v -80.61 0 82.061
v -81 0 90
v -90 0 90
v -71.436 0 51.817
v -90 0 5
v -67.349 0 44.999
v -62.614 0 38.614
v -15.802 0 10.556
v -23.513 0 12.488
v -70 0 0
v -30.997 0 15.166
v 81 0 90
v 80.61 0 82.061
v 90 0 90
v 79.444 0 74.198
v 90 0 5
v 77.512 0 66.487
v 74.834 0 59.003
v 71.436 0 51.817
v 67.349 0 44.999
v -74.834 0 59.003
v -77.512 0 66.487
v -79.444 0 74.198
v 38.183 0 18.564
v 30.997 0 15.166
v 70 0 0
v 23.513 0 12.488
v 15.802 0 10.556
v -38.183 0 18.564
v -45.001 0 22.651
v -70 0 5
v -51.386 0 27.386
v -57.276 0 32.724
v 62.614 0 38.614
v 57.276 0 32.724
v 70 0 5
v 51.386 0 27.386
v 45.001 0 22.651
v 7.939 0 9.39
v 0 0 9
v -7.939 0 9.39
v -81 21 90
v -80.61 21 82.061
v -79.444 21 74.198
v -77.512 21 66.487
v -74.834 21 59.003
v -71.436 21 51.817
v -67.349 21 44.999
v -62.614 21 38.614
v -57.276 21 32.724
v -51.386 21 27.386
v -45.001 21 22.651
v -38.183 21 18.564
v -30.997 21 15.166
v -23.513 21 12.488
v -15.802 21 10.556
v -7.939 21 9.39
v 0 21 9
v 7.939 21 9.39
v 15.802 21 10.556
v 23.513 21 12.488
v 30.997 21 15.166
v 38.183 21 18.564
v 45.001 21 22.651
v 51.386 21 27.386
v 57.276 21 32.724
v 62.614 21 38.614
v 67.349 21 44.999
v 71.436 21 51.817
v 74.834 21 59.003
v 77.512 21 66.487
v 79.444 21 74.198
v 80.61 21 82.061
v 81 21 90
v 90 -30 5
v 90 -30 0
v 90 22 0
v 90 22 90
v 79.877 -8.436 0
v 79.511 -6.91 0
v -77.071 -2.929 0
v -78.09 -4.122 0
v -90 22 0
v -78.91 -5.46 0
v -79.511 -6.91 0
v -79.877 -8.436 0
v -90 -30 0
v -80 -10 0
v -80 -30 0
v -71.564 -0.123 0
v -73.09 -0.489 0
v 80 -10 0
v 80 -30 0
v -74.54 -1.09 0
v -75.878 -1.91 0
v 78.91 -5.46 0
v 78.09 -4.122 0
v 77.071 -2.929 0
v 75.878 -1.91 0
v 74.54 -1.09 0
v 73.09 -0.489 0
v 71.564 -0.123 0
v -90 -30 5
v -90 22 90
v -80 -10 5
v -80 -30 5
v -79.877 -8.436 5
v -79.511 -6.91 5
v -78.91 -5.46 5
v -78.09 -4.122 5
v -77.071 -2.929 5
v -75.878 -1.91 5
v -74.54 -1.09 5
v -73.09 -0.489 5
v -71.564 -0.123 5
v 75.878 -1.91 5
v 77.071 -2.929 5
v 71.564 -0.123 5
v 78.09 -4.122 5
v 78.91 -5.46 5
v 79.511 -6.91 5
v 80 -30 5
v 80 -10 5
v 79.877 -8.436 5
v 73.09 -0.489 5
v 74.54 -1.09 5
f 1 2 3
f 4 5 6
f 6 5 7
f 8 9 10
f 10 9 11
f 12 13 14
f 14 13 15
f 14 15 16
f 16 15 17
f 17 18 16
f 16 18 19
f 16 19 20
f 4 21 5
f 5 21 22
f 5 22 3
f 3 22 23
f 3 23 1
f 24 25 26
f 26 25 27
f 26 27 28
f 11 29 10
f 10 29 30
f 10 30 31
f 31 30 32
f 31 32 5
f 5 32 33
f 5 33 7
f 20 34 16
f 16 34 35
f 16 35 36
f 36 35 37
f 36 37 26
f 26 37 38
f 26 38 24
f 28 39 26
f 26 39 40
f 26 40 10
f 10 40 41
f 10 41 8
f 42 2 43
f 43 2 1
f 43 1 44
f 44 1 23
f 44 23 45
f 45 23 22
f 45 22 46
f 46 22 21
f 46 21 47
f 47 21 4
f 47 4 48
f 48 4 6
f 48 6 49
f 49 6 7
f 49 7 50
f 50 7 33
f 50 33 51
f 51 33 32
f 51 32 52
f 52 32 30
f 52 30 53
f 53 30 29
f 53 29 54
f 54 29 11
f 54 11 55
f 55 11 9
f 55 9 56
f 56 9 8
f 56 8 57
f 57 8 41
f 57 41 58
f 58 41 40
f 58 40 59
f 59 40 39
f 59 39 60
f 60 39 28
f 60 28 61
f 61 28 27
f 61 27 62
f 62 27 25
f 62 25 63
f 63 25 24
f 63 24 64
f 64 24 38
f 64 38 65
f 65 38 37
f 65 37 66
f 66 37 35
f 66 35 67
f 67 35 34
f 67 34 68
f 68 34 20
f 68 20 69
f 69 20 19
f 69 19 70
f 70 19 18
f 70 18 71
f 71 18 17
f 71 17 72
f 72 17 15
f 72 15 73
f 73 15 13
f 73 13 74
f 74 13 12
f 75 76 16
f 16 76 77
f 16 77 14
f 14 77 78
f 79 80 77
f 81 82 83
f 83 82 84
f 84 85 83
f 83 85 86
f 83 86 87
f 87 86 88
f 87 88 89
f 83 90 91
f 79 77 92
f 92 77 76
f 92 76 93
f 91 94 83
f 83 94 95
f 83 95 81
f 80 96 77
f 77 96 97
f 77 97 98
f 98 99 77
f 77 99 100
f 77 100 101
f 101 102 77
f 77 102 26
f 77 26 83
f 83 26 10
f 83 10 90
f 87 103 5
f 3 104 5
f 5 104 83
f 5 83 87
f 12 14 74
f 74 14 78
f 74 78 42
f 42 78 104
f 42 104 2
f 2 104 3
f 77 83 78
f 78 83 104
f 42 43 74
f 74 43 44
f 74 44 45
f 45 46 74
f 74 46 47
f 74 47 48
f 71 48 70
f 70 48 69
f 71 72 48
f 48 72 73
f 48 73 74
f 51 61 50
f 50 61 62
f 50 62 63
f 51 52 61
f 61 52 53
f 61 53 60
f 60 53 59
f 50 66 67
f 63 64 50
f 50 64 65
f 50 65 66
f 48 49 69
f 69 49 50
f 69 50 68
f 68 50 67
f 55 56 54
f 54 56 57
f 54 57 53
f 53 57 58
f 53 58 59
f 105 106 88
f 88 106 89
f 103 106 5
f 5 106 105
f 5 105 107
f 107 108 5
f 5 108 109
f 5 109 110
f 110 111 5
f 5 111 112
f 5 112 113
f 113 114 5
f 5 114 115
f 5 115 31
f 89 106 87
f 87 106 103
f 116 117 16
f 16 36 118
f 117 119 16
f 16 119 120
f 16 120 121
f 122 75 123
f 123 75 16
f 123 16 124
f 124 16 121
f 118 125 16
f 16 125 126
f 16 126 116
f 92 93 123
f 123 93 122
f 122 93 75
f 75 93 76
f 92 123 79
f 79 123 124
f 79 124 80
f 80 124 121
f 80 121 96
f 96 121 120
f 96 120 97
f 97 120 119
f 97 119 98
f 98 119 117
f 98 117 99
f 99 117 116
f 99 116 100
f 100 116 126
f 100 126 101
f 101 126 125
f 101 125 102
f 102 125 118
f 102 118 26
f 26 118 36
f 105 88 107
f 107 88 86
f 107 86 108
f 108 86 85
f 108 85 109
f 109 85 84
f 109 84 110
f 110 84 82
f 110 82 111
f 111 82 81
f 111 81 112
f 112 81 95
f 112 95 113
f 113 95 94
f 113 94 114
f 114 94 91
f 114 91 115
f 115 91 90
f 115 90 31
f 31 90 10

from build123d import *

# Parameters (mm, degrees)
EXTRUDE_1_DEPTH = 22
SKETCH_2_W      = 180
SKETCH_2_H      = 90
EXTRUDE_2_DEPTH = 1
SKETCH_3_W      = 10
SKETCH_3_H      = 5
EXTRUDE_3_DEPTH = 30
FILLET_1_R      = 10


with BuildPart() as part:
    # Эскиз1 → Бобышка-Вытянуть1 (new body)
    with BuildSketch(Plane(origin=(0, 0, 0), x_dir=(-1, 0, 0), z_dir=(0, 1, 0))):
        with BuildLine():
            Line((-90, 0), (90, 0))
            Line((90, 0), (90, 90))
            Line((90, 90), (81, 90))
            ThreePointArc((81, 90), (0, 9), (-81, 90))
            Line((-81, 90), (-90, 90))
            Line((-90, 90), (-90, 0))
        make_face()
    extrude(amount=EXTRUDE_1_DEPTH)

    # Эскиз2 → Бобышка-Вытянуть2 (add)
    with BuildSketch(Plane(origin=(0, 22, 0), x_dir=(1, 0, 0), z_dir=(0, 1, 0))):
        with Locations((0, -45)):
            Rectangle(SKETCH_2_W, SKETCH_2_H)
    extrude(amount=-EXTRUDE_2_DEPTH)

    # Эскиз3 → Бобышка-Вытянуть3 (add)
    with BuildSketch(Plane.XZ):
        with Locations((-85, 2.5)):
            Rectangle(SKETCH_3_W, SKETCH_3_H)
        with Locations((85, 2.5)):
            Rectangle(SKETCH_3_W, SKETCH_3_H)
    extrude(amount=EXTRUDE_3_DEPTH)

    # Скругление1
    fillet_1_edges = [part.edges().sort_by_distance(p)[0] for p in [
        (-80, 0, 2.5),
        (80, 0, 2.5),
    ]]
    fillet(fillet_1_edges, radius=FILLET_1_R)


solid = part.part
